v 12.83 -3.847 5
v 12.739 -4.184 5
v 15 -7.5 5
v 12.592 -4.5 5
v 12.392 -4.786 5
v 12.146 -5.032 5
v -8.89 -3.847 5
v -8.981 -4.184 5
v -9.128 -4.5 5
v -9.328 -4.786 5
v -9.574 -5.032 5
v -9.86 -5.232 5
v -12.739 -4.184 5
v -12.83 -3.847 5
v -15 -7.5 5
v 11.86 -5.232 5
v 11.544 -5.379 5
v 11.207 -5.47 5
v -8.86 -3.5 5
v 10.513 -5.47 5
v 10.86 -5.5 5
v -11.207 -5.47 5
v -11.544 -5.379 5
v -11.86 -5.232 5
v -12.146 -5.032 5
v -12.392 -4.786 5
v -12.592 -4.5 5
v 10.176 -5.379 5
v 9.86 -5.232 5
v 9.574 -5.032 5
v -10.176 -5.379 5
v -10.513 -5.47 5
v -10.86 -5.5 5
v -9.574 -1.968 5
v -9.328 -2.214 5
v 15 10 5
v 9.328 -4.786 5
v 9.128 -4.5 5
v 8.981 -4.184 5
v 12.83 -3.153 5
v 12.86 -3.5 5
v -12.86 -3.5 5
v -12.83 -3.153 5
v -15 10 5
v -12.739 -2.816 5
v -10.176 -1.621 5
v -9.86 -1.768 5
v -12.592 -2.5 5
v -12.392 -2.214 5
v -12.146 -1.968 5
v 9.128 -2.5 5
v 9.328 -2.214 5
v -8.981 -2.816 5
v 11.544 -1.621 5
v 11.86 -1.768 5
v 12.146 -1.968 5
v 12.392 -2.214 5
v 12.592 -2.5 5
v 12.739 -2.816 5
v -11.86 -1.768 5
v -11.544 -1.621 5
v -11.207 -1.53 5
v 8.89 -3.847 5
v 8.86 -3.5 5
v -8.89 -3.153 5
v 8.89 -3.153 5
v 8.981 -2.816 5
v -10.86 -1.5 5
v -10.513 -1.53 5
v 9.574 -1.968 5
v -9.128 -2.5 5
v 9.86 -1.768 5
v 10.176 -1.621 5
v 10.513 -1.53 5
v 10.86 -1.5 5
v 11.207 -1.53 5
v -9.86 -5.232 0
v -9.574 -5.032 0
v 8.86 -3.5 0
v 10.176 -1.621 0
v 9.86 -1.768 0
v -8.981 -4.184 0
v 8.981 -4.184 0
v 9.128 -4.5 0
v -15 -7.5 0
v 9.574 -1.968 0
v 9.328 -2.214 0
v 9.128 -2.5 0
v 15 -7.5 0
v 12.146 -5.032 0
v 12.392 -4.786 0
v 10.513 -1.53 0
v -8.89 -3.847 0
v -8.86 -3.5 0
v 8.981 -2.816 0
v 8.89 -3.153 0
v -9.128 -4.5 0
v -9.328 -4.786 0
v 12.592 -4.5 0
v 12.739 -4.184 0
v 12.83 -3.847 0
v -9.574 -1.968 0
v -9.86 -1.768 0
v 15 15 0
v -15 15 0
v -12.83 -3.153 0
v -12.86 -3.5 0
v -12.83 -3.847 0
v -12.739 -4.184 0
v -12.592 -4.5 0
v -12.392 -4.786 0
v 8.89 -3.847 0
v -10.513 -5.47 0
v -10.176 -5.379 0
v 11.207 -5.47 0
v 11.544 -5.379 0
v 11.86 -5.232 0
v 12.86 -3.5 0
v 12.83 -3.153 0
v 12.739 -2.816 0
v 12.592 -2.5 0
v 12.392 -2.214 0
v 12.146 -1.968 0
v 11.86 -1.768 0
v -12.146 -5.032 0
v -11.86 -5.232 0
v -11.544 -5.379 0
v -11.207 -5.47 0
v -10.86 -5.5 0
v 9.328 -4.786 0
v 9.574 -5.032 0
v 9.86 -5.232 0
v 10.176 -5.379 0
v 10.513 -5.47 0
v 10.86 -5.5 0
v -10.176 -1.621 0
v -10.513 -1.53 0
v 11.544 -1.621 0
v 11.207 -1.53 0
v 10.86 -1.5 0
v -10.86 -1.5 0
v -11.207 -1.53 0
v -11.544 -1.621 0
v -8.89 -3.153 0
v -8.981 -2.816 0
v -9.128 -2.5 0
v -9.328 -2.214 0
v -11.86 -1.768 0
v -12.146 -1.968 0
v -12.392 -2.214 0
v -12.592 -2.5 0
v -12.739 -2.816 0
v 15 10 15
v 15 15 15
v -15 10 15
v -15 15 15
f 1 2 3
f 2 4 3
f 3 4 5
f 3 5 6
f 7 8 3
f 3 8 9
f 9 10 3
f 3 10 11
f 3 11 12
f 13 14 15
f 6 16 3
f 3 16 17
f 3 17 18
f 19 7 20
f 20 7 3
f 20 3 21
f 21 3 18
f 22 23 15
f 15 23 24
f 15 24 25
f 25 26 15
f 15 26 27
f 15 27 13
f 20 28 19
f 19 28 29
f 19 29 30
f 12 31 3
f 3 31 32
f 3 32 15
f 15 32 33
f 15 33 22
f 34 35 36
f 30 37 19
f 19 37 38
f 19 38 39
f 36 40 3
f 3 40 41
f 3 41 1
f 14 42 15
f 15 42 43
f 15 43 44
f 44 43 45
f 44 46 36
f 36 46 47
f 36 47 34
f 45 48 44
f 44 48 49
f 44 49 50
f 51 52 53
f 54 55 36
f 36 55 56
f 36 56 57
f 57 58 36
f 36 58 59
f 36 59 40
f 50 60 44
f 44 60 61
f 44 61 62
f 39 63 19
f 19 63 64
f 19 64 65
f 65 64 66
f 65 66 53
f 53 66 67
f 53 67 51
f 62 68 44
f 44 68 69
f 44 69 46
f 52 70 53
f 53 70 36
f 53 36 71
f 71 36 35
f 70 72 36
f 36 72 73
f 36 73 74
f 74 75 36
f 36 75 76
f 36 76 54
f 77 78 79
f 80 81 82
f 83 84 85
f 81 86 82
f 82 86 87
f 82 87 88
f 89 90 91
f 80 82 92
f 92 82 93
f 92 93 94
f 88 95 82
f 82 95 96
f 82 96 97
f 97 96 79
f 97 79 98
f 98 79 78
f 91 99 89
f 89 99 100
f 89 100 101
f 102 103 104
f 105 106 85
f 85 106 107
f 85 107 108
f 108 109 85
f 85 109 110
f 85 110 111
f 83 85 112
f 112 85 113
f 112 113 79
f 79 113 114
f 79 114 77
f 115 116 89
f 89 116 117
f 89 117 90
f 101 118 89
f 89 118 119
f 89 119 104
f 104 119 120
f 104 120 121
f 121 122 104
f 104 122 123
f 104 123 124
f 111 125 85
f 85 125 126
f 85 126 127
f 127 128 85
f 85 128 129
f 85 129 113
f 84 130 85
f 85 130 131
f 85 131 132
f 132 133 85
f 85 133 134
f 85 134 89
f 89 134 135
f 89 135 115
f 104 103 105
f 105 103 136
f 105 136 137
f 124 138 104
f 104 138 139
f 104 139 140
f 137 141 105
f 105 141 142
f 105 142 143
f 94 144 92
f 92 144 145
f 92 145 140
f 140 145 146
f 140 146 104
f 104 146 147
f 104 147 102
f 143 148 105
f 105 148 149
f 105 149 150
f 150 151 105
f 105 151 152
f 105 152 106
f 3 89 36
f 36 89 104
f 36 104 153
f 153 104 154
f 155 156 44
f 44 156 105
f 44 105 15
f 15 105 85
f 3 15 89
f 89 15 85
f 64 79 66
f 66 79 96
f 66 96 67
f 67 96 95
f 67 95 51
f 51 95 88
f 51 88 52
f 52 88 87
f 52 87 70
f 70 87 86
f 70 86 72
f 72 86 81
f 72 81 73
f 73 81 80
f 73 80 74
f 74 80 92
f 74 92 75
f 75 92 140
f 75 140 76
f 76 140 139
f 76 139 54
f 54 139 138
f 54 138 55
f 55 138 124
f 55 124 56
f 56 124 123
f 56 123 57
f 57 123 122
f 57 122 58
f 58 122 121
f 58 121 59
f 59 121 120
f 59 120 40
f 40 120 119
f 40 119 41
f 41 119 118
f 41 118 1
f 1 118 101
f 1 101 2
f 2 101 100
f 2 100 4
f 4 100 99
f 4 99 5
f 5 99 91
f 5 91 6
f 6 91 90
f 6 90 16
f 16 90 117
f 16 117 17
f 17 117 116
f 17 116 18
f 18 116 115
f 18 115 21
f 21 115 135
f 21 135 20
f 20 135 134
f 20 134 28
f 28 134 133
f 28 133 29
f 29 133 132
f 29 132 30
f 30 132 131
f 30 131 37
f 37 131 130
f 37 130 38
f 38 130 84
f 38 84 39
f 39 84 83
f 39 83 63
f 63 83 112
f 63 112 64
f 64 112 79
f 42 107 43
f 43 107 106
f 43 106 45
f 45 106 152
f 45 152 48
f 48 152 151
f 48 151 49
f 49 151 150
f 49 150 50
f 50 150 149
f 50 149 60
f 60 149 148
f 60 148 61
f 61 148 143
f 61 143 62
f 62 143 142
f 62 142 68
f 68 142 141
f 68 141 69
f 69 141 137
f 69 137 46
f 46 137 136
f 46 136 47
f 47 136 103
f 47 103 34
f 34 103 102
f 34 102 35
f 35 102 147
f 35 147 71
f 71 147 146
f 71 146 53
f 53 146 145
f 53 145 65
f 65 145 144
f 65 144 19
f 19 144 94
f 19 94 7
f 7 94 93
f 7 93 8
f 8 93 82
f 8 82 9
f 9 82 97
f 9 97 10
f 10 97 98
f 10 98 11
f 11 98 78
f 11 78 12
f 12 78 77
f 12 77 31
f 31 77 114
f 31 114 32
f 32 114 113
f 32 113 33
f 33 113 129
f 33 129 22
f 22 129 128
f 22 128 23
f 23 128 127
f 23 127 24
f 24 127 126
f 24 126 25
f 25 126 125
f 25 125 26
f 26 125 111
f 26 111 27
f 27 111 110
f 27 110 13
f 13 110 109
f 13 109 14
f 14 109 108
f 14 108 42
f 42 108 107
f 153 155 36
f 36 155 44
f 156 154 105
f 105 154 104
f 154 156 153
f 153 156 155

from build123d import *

# Parameters (mm, degrees)
SKETCH4_W           = 30
SKETCH4_H           = 17.5
SKETCH4_R           = 2
BOSS_EXTRUDE2_DEPTH = 5
SKETCH5_W           = 30
SKETCH5_H           = 5
BOSS_EXTRUDE3_DEPTH = 15


with BuildPart() as part:
    # Sketch4 → Boss-Extrude2 (new body)
    with BuildSketch(Plane.XY):
        with Locations((0, 1.25)):
            Rectangle(SKETCH4_W, SKETCH4_H)
        with Locations((10.86, -3.5)):
            Circle(SKETCH4_R, mode=Mode.SUBTRACT)
        with Locations(Location((-10.86, -3.5, 0), (0, 0, 180))):
            Circle(SKETCH4_R, mode=Mode.SUBTRACT)
    extrude(amount=BOSS_EXTRUDE2_DEPTH)

    # Sketch5 → Boss-Extrude3 (add)
    with BuildSketch(Plane.XY):
        with Locations((0, 12.5)):
            Rectangle(SKETCH5_W, SKETCH5_H)
    extrude(amount=BOSS_EXTRUDE3_DEPTH)


solid = part.part
